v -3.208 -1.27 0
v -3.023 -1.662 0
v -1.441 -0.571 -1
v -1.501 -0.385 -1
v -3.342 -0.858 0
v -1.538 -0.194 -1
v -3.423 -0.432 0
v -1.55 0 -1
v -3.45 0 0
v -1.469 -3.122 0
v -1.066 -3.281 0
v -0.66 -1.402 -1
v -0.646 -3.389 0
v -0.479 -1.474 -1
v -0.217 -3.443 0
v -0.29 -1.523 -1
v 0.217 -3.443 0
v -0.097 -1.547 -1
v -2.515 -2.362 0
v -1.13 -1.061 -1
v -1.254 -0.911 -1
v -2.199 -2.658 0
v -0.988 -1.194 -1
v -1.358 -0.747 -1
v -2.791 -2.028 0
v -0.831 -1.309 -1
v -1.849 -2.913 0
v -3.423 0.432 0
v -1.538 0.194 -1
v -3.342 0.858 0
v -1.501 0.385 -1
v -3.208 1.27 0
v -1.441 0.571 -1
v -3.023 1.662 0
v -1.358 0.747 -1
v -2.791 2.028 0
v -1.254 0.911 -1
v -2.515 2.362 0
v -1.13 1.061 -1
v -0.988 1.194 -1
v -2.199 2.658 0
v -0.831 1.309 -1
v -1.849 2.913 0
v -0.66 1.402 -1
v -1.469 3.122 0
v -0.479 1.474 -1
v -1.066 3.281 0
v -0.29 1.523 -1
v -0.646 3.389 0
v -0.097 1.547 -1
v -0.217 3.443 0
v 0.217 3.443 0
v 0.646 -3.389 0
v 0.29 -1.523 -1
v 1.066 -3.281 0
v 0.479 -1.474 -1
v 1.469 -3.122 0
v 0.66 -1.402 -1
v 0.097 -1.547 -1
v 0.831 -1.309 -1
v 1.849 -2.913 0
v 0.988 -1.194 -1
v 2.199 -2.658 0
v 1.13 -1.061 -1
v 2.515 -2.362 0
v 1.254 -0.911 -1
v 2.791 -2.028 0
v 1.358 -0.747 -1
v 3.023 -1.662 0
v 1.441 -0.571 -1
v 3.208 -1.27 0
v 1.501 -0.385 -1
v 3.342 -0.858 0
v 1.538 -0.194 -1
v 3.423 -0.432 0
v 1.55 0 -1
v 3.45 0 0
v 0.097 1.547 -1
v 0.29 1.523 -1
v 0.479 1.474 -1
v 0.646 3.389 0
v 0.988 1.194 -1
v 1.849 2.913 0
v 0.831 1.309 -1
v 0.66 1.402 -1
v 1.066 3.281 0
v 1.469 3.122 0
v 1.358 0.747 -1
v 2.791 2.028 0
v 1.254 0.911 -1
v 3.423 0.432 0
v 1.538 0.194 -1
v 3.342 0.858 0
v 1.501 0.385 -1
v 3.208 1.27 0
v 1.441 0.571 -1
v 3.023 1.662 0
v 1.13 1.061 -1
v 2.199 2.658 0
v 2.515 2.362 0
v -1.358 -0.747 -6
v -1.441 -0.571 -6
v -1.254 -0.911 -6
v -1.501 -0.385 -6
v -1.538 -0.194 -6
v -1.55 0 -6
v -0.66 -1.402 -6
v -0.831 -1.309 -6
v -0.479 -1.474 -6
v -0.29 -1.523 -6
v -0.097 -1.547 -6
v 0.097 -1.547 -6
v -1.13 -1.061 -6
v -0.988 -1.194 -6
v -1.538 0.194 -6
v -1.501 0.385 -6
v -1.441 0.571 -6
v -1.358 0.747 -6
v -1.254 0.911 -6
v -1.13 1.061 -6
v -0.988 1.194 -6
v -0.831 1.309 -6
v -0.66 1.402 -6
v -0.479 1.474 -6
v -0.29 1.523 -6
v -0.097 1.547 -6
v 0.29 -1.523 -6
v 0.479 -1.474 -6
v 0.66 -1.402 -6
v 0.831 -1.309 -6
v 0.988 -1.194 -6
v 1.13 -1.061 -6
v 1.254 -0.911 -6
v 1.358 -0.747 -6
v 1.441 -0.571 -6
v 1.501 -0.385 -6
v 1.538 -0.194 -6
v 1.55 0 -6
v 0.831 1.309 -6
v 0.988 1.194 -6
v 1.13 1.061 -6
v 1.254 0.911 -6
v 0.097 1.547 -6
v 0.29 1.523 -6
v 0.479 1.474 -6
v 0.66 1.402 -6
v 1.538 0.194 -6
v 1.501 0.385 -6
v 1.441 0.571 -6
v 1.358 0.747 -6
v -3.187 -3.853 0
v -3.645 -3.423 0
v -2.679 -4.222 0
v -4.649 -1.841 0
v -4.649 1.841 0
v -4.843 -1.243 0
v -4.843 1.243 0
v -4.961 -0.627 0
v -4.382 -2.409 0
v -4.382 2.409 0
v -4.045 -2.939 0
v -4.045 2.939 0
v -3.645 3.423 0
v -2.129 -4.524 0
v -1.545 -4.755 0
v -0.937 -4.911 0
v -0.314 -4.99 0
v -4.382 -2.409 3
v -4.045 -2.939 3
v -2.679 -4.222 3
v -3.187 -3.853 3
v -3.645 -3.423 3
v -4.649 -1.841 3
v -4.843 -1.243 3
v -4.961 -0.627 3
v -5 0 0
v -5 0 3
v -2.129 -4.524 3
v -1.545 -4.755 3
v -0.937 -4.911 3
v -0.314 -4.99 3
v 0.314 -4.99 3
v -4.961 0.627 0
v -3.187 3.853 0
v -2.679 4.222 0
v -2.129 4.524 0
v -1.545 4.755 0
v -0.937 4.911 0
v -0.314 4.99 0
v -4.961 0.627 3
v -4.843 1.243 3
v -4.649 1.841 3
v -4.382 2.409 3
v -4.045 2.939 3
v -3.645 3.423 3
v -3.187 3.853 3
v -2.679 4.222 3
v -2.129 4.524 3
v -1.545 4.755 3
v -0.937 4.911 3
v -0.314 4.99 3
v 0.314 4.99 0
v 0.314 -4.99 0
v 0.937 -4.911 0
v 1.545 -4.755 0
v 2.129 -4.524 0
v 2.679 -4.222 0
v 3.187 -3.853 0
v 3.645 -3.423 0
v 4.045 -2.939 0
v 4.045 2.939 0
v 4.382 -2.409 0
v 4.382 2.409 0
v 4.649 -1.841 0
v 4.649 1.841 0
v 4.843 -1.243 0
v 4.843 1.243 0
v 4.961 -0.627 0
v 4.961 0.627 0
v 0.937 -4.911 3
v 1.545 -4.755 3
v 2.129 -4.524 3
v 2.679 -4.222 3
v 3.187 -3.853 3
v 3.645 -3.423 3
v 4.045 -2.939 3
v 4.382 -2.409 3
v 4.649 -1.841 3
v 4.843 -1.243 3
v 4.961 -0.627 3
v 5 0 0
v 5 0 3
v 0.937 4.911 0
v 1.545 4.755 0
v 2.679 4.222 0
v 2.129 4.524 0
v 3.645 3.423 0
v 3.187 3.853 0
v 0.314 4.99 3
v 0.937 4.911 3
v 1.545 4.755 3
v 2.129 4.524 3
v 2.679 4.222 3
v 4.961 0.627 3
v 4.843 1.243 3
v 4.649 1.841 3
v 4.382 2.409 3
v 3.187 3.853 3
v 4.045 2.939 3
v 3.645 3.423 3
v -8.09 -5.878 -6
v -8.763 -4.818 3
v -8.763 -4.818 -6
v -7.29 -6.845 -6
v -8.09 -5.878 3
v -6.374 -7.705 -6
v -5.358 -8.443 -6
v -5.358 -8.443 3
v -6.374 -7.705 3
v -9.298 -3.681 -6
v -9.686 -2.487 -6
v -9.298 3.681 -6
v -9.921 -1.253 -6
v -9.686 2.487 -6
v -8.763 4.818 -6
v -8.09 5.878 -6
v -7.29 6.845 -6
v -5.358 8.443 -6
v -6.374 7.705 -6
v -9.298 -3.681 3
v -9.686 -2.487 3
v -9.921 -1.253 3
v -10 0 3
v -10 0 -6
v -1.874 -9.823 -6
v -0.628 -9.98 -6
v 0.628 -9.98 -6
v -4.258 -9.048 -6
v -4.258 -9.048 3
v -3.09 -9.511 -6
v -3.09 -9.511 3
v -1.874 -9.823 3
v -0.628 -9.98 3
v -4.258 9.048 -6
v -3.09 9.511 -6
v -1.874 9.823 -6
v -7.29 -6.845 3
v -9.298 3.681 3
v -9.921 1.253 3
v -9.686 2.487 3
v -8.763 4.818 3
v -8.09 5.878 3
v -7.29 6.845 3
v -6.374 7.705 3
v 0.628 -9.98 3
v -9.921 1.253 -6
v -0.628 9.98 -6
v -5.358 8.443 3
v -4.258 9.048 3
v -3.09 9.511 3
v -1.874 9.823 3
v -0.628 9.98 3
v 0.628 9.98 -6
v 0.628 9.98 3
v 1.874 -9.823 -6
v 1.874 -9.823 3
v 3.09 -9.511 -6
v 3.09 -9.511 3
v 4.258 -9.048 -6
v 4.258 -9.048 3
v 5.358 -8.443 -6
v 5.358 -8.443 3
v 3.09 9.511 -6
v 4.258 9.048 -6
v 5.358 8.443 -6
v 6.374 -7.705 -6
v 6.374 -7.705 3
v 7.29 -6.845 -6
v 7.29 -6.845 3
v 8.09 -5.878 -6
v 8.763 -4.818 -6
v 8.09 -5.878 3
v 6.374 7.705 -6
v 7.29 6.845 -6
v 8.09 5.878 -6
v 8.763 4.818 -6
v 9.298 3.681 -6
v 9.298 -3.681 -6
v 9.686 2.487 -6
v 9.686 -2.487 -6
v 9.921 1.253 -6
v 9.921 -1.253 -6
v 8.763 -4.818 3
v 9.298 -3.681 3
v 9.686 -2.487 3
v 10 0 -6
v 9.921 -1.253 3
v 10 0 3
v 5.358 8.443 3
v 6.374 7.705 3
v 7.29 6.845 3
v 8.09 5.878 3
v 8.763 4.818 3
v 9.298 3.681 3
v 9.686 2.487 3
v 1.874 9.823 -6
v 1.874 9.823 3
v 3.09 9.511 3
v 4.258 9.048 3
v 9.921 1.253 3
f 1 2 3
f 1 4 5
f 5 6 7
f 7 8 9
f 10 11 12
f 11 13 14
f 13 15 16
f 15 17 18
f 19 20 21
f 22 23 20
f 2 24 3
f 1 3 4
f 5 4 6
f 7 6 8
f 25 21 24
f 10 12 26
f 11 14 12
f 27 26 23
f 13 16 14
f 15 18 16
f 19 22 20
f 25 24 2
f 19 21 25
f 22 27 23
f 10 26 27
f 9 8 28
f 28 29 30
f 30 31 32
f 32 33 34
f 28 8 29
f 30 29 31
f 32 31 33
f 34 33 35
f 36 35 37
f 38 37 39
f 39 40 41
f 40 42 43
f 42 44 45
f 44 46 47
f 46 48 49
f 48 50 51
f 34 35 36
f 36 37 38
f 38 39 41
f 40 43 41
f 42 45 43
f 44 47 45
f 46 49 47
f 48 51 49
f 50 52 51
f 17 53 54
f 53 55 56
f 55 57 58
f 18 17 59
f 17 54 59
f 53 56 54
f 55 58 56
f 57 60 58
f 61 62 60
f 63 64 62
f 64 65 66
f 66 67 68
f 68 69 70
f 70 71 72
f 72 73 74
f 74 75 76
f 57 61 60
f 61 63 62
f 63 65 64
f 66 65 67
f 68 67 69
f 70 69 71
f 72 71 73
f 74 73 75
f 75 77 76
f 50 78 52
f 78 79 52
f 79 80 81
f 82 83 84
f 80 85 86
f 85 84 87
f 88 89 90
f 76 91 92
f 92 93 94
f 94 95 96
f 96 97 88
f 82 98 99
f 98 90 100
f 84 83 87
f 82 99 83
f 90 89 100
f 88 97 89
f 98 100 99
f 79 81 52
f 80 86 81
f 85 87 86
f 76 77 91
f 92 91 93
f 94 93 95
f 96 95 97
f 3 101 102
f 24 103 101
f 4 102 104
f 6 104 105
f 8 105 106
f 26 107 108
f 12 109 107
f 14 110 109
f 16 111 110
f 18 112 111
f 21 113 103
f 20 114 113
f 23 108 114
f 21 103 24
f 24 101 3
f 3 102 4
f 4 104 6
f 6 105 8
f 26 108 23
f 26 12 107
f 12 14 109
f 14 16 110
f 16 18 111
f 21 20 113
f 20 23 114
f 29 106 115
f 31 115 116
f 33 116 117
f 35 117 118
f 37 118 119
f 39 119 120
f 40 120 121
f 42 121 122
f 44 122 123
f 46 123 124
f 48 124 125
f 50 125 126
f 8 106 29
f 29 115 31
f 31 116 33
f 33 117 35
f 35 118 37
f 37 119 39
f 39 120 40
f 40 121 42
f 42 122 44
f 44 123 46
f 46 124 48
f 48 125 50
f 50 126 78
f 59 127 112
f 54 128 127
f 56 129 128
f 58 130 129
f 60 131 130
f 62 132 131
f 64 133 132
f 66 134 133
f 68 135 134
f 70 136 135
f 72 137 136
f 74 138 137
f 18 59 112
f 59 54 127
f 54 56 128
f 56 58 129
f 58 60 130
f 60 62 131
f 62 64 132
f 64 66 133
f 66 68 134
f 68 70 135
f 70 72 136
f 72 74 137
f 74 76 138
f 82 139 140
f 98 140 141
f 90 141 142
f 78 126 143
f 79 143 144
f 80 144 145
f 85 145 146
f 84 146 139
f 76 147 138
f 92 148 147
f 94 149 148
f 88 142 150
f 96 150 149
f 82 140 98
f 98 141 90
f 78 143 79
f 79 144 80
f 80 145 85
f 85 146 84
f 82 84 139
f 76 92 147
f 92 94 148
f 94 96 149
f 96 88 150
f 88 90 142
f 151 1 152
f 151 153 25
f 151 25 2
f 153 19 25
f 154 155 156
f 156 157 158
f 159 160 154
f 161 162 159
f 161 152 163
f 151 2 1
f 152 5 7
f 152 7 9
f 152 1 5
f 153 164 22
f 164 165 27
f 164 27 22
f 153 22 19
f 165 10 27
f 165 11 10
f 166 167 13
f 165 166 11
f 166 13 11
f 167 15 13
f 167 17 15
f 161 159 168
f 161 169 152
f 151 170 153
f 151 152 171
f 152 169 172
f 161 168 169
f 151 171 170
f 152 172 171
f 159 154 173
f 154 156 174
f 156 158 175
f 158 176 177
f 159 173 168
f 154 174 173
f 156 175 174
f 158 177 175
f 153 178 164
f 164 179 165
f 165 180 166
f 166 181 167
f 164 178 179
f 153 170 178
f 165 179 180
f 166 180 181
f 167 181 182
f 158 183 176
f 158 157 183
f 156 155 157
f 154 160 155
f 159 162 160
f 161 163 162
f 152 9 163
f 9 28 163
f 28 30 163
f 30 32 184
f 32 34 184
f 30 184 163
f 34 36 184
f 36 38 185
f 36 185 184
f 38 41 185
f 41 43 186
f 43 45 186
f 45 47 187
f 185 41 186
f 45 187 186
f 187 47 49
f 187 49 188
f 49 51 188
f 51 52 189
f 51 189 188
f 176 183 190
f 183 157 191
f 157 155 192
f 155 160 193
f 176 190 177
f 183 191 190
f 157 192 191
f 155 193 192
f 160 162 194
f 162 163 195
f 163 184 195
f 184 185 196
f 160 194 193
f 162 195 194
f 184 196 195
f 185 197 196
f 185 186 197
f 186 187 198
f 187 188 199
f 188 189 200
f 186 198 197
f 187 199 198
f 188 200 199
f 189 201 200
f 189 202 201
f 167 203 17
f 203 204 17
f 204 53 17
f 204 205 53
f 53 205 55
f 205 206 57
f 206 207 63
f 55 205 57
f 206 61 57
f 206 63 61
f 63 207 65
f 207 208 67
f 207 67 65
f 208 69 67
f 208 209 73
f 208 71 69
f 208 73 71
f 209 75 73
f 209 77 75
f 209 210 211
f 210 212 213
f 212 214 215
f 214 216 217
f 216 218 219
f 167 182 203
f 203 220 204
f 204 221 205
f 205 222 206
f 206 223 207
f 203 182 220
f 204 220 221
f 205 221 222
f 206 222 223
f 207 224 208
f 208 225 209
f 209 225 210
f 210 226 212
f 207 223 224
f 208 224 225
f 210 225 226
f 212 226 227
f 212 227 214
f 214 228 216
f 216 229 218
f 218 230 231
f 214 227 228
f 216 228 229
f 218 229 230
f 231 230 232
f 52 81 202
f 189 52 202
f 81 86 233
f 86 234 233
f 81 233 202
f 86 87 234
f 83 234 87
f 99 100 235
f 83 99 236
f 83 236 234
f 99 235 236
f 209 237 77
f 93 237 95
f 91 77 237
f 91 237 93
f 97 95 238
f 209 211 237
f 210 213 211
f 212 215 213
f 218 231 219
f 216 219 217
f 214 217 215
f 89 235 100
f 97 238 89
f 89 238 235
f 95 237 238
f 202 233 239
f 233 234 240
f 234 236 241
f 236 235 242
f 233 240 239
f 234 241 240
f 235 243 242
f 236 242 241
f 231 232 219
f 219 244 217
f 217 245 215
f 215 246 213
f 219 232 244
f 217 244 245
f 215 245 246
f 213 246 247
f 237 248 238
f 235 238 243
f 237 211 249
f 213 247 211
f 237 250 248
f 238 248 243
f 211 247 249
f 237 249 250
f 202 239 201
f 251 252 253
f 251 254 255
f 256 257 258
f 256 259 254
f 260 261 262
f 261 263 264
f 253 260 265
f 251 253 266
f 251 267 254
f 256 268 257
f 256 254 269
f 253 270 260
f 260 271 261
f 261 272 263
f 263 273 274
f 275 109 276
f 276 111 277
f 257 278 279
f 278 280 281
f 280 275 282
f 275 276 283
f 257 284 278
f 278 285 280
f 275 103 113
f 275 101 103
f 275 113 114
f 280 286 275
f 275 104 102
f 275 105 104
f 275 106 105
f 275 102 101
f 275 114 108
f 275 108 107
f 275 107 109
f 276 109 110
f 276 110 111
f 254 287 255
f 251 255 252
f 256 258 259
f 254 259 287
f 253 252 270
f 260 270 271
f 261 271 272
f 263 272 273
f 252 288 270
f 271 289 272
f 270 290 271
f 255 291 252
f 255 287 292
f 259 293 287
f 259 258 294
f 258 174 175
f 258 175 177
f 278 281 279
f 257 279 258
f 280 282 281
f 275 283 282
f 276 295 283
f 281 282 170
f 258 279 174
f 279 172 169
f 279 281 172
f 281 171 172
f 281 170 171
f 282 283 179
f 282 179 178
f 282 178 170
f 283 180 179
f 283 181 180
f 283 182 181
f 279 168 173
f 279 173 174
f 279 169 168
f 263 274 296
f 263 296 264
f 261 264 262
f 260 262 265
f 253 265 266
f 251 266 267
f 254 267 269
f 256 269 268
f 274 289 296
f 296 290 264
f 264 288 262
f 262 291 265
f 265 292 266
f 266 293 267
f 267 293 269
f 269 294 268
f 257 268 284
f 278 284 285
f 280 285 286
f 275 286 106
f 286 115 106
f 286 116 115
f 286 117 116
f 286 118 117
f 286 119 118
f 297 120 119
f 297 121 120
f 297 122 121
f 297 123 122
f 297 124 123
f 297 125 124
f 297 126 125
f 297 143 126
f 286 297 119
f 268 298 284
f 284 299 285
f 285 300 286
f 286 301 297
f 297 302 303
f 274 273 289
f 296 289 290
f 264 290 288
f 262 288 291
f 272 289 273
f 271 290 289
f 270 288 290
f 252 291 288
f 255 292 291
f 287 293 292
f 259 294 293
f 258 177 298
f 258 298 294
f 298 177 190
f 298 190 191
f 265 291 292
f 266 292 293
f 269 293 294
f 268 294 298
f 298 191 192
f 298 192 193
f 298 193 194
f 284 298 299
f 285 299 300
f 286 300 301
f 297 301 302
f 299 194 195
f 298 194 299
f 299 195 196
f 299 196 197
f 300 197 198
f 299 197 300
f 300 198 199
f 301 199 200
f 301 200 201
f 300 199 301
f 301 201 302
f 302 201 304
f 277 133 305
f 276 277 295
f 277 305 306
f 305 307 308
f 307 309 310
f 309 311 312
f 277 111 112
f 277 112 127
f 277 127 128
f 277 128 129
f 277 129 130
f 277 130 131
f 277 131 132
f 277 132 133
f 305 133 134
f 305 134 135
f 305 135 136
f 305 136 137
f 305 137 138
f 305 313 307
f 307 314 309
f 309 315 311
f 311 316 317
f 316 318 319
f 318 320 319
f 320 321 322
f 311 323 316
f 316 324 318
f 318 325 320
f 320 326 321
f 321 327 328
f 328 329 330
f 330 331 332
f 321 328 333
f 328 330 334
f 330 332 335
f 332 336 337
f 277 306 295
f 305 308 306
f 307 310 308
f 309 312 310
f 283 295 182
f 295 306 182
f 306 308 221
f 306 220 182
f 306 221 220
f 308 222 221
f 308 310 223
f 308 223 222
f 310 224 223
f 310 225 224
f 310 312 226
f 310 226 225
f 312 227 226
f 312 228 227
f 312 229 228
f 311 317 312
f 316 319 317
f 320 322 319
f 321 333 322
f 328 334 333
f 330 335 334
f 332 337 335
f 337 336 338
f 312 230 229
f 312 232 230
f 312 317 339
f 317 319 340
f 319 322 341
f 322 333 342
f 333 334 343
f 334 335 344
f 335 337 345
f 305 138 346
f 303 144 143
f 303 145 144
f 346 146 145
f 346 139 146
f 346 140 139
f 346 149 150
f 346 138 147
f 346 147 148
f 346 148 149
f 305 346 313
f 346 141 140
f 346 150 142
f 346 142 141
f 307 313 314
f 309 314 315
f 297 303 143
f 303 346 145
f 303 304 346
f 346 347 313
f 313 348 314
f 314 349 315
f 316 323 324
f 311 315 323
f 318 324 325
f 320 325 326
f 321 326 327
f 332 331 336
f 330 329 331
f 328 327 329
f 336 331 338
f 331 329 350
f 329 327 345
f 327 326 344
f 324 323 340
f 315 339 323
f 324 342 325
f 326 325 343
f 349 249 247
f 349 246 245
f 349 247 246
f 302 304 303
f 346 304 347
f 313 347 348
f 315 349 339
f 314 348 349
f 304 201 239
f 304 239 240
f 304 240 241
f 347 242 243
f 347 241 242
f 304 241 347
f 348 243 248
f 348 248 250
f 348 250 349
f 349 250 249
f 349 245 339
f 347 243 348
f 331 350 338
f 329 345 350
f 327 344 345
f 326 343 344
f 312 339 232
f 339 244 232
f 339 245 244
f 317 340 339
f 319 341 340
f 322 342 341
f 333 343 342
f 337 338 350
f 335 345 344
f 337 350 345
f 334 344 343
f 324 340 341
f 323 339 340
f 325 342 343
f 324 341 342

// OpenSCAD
$fn = 50;

difference() {
	union() {
		translate(v = [0, 0, -6.0]) {
			cylinder(h = 9, r = 10.0);
		}
	}
	union() {
		translate(v = [0, 0, 0]) {
			rotate(a = [0, 0, 0]) {
				difference() {
					union() {
						translate(v = [0, 0, -9.0]) {
							cylinder(h = 9, r = 1.25);
						}
						translate(v = [0, 0, -1.0]) {
							cylinder(h = 1.0, r1 = 1.55, r2 = 3.45);
						}
						translate(v = [0, 0, -9.0]) {
							cylinder(h = 9, r = 1.55);
						}
						translate(v = [0, 0, -9.0]) {
							cylinder(h = 9, r = 1.25);
						}
					}
					union();
				}
			}
		}
		#cylinder(h = 3, r = 5.0);
	}
}
